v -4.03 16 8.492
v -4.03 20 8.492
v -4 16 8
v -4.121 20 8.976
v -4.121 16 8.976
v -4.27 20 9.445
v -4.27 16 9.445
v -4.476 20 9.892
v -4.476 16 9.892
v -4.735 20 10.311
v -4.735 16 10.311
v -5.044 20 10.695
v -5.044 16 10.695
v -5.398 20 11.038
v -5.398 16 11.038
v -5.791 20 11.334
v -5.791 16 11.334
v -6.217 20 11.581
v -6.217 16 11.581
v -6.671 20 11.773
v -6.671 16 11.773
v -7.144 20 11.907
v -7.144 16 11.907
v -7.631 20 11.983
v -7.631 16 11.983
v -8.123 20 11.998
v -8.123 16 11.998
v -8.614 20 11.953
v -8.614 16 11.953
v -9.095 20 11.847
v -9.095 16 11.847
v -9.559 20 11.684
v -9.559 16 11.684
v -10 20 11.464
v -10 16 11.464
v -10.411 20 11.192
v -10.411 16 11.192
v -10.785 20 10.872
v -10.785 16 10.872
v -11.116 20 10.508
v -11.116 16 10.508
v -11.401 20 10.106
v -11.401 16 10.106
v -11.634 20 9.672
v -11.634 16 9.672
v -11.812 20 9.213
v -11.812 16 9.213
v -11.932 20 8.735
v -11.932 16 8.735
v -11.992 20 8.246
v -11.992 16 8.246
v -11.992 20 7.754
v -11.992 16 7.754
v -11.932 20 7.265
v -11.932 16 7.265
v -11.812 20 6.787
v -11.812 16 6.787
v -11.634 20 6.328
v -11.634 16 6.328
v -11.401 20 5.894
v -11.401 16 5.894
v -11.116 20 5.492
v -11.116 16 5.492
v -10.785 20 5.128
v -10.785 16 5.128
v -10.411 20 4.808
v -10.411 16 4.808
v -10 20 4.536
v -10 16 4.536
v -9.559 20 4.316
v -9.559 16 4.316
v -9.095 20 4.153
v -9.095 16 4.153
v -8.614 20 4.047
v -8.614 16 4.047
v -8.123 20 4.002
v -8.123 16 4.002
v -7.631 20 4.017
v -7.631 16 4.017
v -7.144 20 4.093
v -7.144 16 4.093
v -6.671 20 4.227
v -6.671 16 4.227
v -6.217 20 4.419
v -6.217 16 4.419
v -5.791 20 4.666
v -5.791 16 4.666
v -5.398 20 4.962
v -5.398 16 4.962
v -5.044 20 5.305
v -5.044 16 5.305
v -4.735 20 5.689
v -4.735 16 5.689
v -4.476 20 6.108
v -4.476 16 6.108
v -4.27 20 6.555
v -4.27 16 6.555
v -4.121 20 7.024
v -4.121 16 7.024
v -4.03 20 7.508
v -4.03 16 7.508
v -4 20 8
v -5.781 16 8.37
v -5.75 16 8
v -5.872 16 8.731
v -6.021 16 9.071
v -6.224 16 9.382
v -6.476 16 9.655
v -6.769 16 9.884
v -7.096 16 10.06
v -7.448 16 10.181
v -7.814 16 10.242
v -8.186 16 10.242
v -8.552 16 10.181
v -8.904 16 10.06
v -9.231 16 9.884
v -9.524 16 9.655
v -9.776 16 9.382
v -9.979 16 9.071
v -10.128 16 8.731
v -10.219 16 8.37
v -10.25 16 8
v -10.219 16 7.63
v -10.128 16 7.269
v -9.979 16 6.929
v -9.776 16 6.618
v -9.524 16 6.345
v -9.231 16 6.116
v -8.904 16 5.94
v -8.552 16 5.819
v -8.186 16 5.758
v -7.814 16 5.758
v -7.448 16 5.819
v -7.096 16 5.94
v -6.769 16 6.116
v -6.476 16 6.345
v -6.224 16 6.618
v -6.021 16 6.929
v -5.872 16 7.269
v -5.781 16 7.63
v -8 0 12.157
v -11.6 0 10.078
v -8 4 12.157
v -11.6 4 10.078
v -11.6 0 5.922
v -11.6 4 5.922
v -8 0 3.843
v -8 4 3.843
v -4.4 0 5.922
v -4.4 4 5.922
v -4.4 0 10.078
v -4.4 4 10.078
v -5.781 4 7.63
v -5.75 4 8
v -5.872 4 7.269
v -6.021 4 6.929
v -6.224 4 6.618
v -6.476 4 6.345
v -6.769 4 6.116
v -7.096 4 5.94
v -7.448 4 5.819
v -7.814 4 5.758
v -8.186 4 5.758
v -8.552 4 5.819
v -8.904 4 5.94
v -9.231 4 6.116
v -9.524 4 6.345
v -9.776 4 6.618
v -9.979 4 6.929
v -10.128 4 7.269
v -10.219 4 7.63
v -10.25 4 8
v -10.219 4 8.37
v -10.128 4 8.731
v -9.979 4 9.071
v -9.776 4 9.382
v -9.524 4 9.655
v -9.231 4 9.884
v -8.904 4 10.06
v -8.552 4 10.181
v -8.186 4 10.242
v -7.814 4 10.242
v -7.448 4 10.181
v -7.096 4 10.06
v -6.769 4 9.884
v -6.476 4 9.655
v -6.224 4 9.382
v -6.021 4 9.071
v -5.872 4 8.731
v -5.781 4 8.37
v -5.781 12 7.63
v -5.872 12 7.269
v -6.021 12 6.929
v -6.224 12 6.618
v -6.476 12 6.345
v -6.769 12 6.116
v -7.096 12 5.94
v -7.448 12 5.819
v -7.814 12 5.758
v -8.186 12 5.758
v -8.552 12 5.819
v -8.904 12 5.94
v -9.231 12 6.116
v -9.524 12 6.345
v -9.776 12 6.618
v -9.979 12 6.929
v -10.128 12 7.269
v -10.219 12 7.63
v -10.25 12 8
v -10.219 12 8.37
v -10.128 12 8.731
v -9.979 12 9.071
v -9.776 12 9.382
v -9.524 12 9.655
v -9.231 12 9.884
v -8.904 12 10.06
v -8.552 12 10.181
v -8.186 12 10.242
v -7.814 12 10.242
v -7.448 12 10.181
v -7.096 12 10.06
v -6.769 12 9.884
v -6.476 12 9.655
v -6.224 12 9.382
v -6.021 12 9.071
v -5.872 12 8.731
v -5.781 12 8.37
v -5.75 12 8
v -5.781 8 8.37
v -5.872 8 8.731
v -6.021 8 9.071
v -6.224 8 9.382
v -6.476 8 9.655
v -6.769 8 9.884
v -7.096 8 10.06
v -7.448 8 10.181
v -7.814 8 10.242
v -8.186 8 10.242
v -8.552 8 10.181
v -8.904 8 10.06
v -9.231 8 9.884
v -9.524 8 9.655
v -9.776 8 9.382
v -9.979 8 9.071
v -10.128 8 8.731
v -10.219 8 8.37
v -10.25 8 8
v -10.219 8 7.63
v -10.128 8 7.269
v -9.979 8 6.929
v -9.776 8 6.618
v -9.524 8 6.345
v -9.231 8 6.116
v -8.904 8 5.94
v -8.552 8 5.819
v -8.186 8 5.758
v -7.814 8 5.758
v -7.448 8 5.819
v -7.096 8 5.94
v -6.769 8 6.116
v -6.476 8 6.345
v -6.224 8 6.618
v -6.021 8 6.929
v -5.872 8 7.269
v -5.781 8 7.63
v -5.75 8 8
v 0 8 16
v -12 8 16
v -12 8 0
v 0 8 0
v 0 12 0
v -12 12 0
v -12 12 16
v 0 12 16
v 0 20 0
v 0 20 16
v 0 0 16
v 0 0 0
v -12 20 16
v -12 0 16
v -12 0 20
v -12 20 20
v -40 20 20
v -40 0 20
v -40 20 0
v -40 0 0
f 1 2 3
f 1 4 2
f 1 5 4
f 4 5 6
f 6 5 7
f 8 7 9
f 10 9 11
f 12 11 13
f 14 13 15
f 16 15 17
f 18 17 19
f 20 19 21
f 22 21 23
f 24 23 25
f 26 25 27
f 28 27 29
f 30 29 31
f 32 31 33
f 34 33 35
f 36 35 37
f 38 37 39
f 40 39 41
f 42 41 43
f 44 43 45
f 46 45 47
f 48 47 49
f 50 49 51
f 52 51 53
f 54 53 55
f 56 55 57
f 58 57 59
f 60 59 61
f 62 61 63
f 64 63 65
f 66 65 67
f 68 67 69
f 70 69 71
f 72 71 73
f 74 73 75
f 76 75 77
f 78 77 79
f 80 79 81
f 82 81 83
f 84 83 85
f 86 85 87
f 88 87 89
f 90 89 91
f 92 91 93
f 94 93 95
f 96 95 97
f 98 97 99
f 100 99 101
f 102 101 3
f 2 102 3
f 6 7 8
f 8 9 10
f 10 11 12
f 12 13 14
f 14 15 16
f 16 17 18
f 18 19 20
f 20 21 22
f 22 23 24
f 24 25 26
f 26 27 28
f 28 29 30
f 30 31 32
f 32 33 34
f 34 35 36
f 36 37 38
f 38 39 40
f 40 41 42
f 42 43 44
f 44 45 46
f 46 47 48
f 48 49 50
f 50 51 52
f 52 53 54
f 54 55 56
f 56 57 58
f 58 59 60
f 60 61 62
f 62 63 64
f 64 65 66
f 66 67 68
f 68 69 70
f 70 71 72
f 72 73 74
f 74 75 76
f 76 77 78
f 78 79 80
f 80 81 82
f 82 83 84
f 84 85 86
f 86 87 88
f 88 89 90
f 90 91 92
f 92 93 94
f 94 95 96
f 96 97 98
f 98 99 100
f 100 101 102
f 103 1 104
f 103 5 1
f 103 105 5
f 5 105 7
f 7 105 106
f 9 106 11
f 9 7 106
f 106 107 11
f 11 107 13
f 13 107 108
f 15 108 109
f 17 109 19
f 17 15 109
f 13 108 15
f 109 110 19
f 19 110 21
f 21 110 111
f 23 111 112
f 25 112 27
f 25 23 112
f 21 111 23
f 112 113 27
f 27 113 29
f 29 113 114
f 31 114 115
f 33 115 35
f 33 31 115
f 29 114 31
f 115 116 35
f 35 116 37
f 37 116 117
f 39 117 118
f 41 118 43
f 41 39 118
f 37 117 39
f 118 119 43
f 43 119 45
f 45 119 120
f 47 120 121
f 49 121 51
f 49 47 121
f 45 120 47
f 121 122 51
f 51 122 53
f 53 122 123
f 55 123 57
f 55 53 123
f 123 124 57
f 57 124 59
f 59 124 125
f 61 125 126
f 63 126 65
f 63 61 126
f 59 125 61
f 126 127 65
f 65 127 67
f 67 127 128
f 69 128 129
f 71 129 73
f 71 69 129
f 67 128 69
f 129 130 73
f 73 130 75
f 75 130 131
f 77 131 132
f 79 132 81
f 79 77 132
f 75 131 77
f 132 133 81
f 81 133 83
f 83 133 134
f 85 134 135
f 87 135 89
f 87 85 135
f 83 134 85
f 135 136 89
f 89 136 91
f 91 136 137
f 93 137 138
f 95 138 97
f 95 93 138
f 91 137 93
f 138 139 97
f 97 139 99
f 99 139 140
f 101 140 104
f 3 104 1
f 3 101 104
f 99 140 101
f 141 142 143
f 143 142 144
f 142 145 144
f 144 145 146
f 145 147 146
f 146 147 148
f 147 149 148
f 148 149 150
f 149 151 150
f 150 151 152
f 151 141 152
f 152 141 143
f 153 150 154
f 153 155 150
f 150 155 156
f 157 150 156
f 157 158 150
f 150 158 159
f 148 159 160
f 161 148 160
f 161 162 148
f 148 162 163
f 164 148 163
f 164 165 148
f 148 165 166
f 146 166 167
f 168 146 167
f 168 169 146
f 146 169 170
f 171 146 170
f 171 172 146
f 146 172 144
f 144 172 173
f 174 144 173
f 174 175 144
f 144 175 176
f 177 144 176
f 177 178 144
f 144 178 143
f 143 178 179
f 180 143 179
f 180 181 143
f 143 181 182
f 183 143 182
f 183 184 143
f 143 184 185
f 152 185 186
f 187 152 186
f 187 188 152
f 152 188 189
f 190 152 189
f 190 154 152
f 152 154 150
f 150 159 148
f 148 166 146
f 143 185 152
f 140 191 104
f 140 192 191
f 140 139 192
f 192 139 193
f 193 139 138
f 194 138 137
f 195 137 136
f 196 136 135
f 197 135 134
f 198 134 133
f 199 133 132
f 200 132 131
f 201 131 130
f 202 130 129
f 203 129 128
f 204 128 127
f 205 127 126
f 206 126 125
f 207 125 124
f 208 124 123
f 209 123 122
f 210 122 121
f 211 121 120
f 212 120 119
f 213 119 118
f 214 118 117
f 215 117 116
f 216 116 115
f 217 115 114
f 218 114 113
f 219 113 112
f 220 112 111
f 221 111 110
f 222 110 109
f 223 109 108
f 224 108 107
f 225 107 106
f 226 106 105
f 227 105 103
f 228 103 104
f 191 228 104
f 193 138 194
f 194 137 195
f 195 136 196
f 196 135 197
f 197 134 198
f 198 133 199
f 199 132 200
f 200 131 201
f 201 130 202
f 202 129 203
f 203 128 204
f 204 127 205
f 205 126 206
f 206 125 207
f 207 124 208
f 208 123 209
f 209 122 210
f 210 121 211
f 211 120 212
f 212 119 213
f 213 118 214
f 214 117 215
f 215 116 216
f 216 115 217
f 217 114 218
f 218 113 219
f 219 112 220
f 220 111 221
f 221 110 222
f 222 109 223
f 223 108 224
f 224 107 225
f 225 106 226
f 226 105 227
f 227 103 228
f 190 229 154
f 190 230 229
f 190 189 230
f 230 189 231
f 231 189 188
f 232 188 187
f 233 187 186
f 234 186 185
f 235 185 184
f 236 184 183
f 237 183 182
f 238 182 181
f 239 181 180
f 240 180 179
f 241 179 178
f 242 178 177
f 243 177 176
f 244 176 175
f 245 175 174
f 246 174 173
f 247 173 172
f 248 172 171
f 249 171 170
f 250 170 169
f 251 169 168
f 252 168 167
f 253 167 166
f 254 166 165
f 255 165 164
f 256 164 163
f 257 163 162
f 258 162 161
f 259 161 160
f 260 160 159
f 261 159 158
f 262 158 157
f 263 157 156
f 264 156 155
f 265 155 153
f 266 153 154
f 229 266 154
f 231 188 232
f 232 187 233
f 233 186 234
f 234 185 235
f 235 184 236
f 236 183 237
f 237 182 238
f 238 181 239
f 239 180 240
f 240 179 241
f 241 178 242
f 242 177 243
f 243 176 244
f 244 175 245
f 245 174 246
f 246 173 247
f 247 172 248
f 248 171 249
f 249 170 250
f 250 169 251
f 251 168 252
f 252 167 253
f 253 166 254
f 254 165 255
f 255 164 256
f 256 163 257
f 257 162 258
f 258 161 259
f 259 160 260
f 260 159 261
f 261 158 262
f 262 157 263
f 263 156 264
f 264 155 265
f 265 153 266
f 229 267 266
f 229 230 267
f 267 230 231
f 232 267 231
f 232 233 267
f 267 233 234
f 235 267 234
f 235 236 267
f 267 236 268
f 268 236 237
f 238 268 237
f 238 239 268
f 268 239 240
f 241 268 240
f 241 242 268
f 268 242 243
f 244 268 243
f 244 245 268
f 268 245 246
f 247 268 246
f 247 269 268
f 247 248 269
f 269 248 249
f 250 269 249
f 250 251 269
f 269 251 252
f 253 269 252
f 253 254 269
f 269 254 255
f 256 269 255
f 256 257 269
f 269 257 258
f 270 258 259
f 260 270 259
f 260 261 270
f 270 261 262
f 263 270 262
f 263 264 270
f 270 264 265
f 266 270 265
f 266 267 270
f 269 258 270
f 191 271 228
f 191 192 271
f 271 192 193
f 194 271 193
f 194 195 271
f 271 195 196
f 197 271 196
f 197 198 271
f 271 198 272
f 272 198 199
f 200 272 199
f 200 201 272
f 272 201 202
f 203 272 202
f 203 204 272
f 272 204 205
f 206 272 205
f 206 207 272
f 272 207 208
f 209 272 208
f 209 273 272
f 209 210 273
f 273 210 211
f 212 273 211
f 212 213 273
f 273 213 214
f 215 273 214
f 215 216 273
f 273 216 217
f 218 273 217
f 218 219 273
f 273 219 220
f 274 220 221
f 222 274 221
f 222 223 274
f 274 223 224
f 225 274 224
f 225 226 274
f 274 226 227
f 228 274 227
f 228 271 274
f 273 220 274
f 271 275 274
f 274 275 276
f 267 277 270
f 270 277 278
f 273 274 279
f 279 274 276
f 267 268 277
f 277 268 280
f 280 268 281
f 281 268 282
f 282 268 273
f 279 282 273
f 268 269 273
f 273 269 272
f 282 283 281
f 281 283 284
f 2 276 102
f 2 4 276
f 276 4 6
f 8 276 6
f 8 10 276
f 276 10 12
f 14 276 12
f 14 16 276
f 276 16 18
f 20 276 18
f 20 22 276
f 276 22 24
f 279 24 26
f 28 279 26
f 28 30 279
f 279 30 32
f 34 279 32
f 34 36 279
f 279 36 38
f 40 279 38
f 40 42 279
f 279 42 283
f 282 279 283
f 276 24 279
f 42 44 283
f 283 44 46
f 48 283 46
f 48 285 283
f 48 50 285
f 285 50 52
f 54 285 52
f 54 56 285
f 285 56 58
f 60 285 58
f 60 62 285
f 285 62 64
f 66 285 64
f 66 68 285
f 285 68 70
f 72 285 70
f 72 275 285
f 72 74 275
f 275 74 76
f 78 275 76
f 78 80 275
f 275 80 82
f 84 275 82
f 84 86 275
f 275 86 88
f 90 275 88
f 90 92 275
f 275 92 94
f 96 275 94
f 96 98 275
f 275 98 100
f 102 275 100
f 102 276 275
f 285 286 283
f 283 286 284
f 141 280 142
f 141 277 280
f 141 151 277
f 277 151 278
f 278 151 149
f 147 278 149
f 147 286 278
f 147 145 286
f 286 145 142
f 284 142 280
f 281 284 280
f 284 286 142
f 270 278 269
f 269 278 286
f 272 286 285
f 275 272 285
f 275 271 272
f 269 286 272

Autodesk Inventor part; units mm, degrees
ref_plane "YZ Plane" through (0, 0, 0) normal (1, 0, 0) x (0, 1, 0)
ref_plane "XZ Plane" through (0, 0, 0) normal (0, 1, 0) x (-1, 0, 0)
ref_plane "XY Plane" through (0, 0, 0) normal (0, 0, 1) x (1, 0, 0)
sketch "Sketch1" plane through (0, 0, 0) normal (0, 0, 1) x (1, 0, 0)
  line L0 (0, 0) -> (-40, 0)
  line L1 (-40, 0) -> (-40, 20)
  line L2 (-40, 20) -> (0, 20)
  line L3 (0, 20) -> (0, 0)
  dimension "d0" = 40
  dimension "d1" = 20
extrude "Extrusion1" add sketch "Sketch1" along normal blind 20
sketch "Sketch2" plane through (-40, 20, 0) normal (0, 1, 0) x (1, 0, 0)
  line L0 (0, -20) -> (40, -20) projected
  line L1 (40, -20) -> (40, -16)
  line L2 (40, 0) -> (40, -20) projected
  line L3 (28, -20) -> (28, -16)
  line L4 (28, -16) -> (40, -16)
  dimension "d4" = 4
  dimension "d5" = 12
extrude "Extrusion2" cut sketch "Sketch2" against normal through all
sketch "Sketch3" plane through (0, 0, 0) normal (1, 0, 0) x (0, 0, -1)
  line L0 (-16, 20) -> (-16, 0) projected
  line L1 (-16, 12) -> (0, 12)
  line L2 (0, 20) -> (0, 0) projected
  line L3 (0, 8) -> (-16, 8)
  dimension "d8" = 8
  dimension "d9" = 8
extrude "Extrusion3" cut sketch "Sketch3" against normal blind 12
sketch "Sketch4" plane through (-40, 20, 0) normal (0, 1, 0) x (1, 0, 0)
  circle A0 centre (32, -8) radius 2.25
  line L0 (28, -16) -> (40, -16) projected
  line L1 (40, 0) -> (40, -16) projected
  dimension "d12" = 4.5
  dimension "d13" = 8
  dimension "d14" = 8
extrude "Extrusion4" cut sketch "Sketch4" against normal through all
sketch "Sketch5" plane through (-40, 0, 0) normal (0, -1, 0) x (1, 0, 0)
  line L0 (40, 0) -> (40, 16) projected
  line L1 (0, 0) -> (0, 20) projected
  line L2 (40, 0) -> (32, 0)
  line L3 (32, 12.1569) -> (35.6, 10.0785)
  line L4 (35.6, 10.0785) -> (35.6, 5.9215)
  line L5 (35.6, 5.9215) -> (32, 3.8431)
  line L6 (32, 3.8431) -> (28.4, 5.9215)
  line L7 (28.4, 5.9215) -> (28.4, 10.0785)
  line L8 (28.4, 10.0785) -> (32, 12.1569)
  line L9 (40, 16) -> (28, 16) projected
  dimension "d28" = 7.2
  dimension "d29" = 4.4
  dimension "d30" = 3.8431
  dimension "d31" = 3.8431
  dimension "d32" = 2.0785
  dimension "d33" = 4.1569
  dimension "d34" = 2.0785
extrude "Extrusion5" cut sketch "Sketch5" against normal blind 4
sketch "Sketch6" plane through (-40, 20, 0) normal (0, 1, 0) x (1, 0, 0)
  circle A0 centre (32, -8) radius 4
  line L0 (28, -16) -> (40, -16) projected
  line L1 (40, 0) -> (40, -16) projected
  dimension "d37" = 8
  dimension "d38" = 8
  dimension "d39" = 8
extrude "Extrusion6" cut sketch "Sketch6" against normal blind 4
properties part number "connectiontest1"
